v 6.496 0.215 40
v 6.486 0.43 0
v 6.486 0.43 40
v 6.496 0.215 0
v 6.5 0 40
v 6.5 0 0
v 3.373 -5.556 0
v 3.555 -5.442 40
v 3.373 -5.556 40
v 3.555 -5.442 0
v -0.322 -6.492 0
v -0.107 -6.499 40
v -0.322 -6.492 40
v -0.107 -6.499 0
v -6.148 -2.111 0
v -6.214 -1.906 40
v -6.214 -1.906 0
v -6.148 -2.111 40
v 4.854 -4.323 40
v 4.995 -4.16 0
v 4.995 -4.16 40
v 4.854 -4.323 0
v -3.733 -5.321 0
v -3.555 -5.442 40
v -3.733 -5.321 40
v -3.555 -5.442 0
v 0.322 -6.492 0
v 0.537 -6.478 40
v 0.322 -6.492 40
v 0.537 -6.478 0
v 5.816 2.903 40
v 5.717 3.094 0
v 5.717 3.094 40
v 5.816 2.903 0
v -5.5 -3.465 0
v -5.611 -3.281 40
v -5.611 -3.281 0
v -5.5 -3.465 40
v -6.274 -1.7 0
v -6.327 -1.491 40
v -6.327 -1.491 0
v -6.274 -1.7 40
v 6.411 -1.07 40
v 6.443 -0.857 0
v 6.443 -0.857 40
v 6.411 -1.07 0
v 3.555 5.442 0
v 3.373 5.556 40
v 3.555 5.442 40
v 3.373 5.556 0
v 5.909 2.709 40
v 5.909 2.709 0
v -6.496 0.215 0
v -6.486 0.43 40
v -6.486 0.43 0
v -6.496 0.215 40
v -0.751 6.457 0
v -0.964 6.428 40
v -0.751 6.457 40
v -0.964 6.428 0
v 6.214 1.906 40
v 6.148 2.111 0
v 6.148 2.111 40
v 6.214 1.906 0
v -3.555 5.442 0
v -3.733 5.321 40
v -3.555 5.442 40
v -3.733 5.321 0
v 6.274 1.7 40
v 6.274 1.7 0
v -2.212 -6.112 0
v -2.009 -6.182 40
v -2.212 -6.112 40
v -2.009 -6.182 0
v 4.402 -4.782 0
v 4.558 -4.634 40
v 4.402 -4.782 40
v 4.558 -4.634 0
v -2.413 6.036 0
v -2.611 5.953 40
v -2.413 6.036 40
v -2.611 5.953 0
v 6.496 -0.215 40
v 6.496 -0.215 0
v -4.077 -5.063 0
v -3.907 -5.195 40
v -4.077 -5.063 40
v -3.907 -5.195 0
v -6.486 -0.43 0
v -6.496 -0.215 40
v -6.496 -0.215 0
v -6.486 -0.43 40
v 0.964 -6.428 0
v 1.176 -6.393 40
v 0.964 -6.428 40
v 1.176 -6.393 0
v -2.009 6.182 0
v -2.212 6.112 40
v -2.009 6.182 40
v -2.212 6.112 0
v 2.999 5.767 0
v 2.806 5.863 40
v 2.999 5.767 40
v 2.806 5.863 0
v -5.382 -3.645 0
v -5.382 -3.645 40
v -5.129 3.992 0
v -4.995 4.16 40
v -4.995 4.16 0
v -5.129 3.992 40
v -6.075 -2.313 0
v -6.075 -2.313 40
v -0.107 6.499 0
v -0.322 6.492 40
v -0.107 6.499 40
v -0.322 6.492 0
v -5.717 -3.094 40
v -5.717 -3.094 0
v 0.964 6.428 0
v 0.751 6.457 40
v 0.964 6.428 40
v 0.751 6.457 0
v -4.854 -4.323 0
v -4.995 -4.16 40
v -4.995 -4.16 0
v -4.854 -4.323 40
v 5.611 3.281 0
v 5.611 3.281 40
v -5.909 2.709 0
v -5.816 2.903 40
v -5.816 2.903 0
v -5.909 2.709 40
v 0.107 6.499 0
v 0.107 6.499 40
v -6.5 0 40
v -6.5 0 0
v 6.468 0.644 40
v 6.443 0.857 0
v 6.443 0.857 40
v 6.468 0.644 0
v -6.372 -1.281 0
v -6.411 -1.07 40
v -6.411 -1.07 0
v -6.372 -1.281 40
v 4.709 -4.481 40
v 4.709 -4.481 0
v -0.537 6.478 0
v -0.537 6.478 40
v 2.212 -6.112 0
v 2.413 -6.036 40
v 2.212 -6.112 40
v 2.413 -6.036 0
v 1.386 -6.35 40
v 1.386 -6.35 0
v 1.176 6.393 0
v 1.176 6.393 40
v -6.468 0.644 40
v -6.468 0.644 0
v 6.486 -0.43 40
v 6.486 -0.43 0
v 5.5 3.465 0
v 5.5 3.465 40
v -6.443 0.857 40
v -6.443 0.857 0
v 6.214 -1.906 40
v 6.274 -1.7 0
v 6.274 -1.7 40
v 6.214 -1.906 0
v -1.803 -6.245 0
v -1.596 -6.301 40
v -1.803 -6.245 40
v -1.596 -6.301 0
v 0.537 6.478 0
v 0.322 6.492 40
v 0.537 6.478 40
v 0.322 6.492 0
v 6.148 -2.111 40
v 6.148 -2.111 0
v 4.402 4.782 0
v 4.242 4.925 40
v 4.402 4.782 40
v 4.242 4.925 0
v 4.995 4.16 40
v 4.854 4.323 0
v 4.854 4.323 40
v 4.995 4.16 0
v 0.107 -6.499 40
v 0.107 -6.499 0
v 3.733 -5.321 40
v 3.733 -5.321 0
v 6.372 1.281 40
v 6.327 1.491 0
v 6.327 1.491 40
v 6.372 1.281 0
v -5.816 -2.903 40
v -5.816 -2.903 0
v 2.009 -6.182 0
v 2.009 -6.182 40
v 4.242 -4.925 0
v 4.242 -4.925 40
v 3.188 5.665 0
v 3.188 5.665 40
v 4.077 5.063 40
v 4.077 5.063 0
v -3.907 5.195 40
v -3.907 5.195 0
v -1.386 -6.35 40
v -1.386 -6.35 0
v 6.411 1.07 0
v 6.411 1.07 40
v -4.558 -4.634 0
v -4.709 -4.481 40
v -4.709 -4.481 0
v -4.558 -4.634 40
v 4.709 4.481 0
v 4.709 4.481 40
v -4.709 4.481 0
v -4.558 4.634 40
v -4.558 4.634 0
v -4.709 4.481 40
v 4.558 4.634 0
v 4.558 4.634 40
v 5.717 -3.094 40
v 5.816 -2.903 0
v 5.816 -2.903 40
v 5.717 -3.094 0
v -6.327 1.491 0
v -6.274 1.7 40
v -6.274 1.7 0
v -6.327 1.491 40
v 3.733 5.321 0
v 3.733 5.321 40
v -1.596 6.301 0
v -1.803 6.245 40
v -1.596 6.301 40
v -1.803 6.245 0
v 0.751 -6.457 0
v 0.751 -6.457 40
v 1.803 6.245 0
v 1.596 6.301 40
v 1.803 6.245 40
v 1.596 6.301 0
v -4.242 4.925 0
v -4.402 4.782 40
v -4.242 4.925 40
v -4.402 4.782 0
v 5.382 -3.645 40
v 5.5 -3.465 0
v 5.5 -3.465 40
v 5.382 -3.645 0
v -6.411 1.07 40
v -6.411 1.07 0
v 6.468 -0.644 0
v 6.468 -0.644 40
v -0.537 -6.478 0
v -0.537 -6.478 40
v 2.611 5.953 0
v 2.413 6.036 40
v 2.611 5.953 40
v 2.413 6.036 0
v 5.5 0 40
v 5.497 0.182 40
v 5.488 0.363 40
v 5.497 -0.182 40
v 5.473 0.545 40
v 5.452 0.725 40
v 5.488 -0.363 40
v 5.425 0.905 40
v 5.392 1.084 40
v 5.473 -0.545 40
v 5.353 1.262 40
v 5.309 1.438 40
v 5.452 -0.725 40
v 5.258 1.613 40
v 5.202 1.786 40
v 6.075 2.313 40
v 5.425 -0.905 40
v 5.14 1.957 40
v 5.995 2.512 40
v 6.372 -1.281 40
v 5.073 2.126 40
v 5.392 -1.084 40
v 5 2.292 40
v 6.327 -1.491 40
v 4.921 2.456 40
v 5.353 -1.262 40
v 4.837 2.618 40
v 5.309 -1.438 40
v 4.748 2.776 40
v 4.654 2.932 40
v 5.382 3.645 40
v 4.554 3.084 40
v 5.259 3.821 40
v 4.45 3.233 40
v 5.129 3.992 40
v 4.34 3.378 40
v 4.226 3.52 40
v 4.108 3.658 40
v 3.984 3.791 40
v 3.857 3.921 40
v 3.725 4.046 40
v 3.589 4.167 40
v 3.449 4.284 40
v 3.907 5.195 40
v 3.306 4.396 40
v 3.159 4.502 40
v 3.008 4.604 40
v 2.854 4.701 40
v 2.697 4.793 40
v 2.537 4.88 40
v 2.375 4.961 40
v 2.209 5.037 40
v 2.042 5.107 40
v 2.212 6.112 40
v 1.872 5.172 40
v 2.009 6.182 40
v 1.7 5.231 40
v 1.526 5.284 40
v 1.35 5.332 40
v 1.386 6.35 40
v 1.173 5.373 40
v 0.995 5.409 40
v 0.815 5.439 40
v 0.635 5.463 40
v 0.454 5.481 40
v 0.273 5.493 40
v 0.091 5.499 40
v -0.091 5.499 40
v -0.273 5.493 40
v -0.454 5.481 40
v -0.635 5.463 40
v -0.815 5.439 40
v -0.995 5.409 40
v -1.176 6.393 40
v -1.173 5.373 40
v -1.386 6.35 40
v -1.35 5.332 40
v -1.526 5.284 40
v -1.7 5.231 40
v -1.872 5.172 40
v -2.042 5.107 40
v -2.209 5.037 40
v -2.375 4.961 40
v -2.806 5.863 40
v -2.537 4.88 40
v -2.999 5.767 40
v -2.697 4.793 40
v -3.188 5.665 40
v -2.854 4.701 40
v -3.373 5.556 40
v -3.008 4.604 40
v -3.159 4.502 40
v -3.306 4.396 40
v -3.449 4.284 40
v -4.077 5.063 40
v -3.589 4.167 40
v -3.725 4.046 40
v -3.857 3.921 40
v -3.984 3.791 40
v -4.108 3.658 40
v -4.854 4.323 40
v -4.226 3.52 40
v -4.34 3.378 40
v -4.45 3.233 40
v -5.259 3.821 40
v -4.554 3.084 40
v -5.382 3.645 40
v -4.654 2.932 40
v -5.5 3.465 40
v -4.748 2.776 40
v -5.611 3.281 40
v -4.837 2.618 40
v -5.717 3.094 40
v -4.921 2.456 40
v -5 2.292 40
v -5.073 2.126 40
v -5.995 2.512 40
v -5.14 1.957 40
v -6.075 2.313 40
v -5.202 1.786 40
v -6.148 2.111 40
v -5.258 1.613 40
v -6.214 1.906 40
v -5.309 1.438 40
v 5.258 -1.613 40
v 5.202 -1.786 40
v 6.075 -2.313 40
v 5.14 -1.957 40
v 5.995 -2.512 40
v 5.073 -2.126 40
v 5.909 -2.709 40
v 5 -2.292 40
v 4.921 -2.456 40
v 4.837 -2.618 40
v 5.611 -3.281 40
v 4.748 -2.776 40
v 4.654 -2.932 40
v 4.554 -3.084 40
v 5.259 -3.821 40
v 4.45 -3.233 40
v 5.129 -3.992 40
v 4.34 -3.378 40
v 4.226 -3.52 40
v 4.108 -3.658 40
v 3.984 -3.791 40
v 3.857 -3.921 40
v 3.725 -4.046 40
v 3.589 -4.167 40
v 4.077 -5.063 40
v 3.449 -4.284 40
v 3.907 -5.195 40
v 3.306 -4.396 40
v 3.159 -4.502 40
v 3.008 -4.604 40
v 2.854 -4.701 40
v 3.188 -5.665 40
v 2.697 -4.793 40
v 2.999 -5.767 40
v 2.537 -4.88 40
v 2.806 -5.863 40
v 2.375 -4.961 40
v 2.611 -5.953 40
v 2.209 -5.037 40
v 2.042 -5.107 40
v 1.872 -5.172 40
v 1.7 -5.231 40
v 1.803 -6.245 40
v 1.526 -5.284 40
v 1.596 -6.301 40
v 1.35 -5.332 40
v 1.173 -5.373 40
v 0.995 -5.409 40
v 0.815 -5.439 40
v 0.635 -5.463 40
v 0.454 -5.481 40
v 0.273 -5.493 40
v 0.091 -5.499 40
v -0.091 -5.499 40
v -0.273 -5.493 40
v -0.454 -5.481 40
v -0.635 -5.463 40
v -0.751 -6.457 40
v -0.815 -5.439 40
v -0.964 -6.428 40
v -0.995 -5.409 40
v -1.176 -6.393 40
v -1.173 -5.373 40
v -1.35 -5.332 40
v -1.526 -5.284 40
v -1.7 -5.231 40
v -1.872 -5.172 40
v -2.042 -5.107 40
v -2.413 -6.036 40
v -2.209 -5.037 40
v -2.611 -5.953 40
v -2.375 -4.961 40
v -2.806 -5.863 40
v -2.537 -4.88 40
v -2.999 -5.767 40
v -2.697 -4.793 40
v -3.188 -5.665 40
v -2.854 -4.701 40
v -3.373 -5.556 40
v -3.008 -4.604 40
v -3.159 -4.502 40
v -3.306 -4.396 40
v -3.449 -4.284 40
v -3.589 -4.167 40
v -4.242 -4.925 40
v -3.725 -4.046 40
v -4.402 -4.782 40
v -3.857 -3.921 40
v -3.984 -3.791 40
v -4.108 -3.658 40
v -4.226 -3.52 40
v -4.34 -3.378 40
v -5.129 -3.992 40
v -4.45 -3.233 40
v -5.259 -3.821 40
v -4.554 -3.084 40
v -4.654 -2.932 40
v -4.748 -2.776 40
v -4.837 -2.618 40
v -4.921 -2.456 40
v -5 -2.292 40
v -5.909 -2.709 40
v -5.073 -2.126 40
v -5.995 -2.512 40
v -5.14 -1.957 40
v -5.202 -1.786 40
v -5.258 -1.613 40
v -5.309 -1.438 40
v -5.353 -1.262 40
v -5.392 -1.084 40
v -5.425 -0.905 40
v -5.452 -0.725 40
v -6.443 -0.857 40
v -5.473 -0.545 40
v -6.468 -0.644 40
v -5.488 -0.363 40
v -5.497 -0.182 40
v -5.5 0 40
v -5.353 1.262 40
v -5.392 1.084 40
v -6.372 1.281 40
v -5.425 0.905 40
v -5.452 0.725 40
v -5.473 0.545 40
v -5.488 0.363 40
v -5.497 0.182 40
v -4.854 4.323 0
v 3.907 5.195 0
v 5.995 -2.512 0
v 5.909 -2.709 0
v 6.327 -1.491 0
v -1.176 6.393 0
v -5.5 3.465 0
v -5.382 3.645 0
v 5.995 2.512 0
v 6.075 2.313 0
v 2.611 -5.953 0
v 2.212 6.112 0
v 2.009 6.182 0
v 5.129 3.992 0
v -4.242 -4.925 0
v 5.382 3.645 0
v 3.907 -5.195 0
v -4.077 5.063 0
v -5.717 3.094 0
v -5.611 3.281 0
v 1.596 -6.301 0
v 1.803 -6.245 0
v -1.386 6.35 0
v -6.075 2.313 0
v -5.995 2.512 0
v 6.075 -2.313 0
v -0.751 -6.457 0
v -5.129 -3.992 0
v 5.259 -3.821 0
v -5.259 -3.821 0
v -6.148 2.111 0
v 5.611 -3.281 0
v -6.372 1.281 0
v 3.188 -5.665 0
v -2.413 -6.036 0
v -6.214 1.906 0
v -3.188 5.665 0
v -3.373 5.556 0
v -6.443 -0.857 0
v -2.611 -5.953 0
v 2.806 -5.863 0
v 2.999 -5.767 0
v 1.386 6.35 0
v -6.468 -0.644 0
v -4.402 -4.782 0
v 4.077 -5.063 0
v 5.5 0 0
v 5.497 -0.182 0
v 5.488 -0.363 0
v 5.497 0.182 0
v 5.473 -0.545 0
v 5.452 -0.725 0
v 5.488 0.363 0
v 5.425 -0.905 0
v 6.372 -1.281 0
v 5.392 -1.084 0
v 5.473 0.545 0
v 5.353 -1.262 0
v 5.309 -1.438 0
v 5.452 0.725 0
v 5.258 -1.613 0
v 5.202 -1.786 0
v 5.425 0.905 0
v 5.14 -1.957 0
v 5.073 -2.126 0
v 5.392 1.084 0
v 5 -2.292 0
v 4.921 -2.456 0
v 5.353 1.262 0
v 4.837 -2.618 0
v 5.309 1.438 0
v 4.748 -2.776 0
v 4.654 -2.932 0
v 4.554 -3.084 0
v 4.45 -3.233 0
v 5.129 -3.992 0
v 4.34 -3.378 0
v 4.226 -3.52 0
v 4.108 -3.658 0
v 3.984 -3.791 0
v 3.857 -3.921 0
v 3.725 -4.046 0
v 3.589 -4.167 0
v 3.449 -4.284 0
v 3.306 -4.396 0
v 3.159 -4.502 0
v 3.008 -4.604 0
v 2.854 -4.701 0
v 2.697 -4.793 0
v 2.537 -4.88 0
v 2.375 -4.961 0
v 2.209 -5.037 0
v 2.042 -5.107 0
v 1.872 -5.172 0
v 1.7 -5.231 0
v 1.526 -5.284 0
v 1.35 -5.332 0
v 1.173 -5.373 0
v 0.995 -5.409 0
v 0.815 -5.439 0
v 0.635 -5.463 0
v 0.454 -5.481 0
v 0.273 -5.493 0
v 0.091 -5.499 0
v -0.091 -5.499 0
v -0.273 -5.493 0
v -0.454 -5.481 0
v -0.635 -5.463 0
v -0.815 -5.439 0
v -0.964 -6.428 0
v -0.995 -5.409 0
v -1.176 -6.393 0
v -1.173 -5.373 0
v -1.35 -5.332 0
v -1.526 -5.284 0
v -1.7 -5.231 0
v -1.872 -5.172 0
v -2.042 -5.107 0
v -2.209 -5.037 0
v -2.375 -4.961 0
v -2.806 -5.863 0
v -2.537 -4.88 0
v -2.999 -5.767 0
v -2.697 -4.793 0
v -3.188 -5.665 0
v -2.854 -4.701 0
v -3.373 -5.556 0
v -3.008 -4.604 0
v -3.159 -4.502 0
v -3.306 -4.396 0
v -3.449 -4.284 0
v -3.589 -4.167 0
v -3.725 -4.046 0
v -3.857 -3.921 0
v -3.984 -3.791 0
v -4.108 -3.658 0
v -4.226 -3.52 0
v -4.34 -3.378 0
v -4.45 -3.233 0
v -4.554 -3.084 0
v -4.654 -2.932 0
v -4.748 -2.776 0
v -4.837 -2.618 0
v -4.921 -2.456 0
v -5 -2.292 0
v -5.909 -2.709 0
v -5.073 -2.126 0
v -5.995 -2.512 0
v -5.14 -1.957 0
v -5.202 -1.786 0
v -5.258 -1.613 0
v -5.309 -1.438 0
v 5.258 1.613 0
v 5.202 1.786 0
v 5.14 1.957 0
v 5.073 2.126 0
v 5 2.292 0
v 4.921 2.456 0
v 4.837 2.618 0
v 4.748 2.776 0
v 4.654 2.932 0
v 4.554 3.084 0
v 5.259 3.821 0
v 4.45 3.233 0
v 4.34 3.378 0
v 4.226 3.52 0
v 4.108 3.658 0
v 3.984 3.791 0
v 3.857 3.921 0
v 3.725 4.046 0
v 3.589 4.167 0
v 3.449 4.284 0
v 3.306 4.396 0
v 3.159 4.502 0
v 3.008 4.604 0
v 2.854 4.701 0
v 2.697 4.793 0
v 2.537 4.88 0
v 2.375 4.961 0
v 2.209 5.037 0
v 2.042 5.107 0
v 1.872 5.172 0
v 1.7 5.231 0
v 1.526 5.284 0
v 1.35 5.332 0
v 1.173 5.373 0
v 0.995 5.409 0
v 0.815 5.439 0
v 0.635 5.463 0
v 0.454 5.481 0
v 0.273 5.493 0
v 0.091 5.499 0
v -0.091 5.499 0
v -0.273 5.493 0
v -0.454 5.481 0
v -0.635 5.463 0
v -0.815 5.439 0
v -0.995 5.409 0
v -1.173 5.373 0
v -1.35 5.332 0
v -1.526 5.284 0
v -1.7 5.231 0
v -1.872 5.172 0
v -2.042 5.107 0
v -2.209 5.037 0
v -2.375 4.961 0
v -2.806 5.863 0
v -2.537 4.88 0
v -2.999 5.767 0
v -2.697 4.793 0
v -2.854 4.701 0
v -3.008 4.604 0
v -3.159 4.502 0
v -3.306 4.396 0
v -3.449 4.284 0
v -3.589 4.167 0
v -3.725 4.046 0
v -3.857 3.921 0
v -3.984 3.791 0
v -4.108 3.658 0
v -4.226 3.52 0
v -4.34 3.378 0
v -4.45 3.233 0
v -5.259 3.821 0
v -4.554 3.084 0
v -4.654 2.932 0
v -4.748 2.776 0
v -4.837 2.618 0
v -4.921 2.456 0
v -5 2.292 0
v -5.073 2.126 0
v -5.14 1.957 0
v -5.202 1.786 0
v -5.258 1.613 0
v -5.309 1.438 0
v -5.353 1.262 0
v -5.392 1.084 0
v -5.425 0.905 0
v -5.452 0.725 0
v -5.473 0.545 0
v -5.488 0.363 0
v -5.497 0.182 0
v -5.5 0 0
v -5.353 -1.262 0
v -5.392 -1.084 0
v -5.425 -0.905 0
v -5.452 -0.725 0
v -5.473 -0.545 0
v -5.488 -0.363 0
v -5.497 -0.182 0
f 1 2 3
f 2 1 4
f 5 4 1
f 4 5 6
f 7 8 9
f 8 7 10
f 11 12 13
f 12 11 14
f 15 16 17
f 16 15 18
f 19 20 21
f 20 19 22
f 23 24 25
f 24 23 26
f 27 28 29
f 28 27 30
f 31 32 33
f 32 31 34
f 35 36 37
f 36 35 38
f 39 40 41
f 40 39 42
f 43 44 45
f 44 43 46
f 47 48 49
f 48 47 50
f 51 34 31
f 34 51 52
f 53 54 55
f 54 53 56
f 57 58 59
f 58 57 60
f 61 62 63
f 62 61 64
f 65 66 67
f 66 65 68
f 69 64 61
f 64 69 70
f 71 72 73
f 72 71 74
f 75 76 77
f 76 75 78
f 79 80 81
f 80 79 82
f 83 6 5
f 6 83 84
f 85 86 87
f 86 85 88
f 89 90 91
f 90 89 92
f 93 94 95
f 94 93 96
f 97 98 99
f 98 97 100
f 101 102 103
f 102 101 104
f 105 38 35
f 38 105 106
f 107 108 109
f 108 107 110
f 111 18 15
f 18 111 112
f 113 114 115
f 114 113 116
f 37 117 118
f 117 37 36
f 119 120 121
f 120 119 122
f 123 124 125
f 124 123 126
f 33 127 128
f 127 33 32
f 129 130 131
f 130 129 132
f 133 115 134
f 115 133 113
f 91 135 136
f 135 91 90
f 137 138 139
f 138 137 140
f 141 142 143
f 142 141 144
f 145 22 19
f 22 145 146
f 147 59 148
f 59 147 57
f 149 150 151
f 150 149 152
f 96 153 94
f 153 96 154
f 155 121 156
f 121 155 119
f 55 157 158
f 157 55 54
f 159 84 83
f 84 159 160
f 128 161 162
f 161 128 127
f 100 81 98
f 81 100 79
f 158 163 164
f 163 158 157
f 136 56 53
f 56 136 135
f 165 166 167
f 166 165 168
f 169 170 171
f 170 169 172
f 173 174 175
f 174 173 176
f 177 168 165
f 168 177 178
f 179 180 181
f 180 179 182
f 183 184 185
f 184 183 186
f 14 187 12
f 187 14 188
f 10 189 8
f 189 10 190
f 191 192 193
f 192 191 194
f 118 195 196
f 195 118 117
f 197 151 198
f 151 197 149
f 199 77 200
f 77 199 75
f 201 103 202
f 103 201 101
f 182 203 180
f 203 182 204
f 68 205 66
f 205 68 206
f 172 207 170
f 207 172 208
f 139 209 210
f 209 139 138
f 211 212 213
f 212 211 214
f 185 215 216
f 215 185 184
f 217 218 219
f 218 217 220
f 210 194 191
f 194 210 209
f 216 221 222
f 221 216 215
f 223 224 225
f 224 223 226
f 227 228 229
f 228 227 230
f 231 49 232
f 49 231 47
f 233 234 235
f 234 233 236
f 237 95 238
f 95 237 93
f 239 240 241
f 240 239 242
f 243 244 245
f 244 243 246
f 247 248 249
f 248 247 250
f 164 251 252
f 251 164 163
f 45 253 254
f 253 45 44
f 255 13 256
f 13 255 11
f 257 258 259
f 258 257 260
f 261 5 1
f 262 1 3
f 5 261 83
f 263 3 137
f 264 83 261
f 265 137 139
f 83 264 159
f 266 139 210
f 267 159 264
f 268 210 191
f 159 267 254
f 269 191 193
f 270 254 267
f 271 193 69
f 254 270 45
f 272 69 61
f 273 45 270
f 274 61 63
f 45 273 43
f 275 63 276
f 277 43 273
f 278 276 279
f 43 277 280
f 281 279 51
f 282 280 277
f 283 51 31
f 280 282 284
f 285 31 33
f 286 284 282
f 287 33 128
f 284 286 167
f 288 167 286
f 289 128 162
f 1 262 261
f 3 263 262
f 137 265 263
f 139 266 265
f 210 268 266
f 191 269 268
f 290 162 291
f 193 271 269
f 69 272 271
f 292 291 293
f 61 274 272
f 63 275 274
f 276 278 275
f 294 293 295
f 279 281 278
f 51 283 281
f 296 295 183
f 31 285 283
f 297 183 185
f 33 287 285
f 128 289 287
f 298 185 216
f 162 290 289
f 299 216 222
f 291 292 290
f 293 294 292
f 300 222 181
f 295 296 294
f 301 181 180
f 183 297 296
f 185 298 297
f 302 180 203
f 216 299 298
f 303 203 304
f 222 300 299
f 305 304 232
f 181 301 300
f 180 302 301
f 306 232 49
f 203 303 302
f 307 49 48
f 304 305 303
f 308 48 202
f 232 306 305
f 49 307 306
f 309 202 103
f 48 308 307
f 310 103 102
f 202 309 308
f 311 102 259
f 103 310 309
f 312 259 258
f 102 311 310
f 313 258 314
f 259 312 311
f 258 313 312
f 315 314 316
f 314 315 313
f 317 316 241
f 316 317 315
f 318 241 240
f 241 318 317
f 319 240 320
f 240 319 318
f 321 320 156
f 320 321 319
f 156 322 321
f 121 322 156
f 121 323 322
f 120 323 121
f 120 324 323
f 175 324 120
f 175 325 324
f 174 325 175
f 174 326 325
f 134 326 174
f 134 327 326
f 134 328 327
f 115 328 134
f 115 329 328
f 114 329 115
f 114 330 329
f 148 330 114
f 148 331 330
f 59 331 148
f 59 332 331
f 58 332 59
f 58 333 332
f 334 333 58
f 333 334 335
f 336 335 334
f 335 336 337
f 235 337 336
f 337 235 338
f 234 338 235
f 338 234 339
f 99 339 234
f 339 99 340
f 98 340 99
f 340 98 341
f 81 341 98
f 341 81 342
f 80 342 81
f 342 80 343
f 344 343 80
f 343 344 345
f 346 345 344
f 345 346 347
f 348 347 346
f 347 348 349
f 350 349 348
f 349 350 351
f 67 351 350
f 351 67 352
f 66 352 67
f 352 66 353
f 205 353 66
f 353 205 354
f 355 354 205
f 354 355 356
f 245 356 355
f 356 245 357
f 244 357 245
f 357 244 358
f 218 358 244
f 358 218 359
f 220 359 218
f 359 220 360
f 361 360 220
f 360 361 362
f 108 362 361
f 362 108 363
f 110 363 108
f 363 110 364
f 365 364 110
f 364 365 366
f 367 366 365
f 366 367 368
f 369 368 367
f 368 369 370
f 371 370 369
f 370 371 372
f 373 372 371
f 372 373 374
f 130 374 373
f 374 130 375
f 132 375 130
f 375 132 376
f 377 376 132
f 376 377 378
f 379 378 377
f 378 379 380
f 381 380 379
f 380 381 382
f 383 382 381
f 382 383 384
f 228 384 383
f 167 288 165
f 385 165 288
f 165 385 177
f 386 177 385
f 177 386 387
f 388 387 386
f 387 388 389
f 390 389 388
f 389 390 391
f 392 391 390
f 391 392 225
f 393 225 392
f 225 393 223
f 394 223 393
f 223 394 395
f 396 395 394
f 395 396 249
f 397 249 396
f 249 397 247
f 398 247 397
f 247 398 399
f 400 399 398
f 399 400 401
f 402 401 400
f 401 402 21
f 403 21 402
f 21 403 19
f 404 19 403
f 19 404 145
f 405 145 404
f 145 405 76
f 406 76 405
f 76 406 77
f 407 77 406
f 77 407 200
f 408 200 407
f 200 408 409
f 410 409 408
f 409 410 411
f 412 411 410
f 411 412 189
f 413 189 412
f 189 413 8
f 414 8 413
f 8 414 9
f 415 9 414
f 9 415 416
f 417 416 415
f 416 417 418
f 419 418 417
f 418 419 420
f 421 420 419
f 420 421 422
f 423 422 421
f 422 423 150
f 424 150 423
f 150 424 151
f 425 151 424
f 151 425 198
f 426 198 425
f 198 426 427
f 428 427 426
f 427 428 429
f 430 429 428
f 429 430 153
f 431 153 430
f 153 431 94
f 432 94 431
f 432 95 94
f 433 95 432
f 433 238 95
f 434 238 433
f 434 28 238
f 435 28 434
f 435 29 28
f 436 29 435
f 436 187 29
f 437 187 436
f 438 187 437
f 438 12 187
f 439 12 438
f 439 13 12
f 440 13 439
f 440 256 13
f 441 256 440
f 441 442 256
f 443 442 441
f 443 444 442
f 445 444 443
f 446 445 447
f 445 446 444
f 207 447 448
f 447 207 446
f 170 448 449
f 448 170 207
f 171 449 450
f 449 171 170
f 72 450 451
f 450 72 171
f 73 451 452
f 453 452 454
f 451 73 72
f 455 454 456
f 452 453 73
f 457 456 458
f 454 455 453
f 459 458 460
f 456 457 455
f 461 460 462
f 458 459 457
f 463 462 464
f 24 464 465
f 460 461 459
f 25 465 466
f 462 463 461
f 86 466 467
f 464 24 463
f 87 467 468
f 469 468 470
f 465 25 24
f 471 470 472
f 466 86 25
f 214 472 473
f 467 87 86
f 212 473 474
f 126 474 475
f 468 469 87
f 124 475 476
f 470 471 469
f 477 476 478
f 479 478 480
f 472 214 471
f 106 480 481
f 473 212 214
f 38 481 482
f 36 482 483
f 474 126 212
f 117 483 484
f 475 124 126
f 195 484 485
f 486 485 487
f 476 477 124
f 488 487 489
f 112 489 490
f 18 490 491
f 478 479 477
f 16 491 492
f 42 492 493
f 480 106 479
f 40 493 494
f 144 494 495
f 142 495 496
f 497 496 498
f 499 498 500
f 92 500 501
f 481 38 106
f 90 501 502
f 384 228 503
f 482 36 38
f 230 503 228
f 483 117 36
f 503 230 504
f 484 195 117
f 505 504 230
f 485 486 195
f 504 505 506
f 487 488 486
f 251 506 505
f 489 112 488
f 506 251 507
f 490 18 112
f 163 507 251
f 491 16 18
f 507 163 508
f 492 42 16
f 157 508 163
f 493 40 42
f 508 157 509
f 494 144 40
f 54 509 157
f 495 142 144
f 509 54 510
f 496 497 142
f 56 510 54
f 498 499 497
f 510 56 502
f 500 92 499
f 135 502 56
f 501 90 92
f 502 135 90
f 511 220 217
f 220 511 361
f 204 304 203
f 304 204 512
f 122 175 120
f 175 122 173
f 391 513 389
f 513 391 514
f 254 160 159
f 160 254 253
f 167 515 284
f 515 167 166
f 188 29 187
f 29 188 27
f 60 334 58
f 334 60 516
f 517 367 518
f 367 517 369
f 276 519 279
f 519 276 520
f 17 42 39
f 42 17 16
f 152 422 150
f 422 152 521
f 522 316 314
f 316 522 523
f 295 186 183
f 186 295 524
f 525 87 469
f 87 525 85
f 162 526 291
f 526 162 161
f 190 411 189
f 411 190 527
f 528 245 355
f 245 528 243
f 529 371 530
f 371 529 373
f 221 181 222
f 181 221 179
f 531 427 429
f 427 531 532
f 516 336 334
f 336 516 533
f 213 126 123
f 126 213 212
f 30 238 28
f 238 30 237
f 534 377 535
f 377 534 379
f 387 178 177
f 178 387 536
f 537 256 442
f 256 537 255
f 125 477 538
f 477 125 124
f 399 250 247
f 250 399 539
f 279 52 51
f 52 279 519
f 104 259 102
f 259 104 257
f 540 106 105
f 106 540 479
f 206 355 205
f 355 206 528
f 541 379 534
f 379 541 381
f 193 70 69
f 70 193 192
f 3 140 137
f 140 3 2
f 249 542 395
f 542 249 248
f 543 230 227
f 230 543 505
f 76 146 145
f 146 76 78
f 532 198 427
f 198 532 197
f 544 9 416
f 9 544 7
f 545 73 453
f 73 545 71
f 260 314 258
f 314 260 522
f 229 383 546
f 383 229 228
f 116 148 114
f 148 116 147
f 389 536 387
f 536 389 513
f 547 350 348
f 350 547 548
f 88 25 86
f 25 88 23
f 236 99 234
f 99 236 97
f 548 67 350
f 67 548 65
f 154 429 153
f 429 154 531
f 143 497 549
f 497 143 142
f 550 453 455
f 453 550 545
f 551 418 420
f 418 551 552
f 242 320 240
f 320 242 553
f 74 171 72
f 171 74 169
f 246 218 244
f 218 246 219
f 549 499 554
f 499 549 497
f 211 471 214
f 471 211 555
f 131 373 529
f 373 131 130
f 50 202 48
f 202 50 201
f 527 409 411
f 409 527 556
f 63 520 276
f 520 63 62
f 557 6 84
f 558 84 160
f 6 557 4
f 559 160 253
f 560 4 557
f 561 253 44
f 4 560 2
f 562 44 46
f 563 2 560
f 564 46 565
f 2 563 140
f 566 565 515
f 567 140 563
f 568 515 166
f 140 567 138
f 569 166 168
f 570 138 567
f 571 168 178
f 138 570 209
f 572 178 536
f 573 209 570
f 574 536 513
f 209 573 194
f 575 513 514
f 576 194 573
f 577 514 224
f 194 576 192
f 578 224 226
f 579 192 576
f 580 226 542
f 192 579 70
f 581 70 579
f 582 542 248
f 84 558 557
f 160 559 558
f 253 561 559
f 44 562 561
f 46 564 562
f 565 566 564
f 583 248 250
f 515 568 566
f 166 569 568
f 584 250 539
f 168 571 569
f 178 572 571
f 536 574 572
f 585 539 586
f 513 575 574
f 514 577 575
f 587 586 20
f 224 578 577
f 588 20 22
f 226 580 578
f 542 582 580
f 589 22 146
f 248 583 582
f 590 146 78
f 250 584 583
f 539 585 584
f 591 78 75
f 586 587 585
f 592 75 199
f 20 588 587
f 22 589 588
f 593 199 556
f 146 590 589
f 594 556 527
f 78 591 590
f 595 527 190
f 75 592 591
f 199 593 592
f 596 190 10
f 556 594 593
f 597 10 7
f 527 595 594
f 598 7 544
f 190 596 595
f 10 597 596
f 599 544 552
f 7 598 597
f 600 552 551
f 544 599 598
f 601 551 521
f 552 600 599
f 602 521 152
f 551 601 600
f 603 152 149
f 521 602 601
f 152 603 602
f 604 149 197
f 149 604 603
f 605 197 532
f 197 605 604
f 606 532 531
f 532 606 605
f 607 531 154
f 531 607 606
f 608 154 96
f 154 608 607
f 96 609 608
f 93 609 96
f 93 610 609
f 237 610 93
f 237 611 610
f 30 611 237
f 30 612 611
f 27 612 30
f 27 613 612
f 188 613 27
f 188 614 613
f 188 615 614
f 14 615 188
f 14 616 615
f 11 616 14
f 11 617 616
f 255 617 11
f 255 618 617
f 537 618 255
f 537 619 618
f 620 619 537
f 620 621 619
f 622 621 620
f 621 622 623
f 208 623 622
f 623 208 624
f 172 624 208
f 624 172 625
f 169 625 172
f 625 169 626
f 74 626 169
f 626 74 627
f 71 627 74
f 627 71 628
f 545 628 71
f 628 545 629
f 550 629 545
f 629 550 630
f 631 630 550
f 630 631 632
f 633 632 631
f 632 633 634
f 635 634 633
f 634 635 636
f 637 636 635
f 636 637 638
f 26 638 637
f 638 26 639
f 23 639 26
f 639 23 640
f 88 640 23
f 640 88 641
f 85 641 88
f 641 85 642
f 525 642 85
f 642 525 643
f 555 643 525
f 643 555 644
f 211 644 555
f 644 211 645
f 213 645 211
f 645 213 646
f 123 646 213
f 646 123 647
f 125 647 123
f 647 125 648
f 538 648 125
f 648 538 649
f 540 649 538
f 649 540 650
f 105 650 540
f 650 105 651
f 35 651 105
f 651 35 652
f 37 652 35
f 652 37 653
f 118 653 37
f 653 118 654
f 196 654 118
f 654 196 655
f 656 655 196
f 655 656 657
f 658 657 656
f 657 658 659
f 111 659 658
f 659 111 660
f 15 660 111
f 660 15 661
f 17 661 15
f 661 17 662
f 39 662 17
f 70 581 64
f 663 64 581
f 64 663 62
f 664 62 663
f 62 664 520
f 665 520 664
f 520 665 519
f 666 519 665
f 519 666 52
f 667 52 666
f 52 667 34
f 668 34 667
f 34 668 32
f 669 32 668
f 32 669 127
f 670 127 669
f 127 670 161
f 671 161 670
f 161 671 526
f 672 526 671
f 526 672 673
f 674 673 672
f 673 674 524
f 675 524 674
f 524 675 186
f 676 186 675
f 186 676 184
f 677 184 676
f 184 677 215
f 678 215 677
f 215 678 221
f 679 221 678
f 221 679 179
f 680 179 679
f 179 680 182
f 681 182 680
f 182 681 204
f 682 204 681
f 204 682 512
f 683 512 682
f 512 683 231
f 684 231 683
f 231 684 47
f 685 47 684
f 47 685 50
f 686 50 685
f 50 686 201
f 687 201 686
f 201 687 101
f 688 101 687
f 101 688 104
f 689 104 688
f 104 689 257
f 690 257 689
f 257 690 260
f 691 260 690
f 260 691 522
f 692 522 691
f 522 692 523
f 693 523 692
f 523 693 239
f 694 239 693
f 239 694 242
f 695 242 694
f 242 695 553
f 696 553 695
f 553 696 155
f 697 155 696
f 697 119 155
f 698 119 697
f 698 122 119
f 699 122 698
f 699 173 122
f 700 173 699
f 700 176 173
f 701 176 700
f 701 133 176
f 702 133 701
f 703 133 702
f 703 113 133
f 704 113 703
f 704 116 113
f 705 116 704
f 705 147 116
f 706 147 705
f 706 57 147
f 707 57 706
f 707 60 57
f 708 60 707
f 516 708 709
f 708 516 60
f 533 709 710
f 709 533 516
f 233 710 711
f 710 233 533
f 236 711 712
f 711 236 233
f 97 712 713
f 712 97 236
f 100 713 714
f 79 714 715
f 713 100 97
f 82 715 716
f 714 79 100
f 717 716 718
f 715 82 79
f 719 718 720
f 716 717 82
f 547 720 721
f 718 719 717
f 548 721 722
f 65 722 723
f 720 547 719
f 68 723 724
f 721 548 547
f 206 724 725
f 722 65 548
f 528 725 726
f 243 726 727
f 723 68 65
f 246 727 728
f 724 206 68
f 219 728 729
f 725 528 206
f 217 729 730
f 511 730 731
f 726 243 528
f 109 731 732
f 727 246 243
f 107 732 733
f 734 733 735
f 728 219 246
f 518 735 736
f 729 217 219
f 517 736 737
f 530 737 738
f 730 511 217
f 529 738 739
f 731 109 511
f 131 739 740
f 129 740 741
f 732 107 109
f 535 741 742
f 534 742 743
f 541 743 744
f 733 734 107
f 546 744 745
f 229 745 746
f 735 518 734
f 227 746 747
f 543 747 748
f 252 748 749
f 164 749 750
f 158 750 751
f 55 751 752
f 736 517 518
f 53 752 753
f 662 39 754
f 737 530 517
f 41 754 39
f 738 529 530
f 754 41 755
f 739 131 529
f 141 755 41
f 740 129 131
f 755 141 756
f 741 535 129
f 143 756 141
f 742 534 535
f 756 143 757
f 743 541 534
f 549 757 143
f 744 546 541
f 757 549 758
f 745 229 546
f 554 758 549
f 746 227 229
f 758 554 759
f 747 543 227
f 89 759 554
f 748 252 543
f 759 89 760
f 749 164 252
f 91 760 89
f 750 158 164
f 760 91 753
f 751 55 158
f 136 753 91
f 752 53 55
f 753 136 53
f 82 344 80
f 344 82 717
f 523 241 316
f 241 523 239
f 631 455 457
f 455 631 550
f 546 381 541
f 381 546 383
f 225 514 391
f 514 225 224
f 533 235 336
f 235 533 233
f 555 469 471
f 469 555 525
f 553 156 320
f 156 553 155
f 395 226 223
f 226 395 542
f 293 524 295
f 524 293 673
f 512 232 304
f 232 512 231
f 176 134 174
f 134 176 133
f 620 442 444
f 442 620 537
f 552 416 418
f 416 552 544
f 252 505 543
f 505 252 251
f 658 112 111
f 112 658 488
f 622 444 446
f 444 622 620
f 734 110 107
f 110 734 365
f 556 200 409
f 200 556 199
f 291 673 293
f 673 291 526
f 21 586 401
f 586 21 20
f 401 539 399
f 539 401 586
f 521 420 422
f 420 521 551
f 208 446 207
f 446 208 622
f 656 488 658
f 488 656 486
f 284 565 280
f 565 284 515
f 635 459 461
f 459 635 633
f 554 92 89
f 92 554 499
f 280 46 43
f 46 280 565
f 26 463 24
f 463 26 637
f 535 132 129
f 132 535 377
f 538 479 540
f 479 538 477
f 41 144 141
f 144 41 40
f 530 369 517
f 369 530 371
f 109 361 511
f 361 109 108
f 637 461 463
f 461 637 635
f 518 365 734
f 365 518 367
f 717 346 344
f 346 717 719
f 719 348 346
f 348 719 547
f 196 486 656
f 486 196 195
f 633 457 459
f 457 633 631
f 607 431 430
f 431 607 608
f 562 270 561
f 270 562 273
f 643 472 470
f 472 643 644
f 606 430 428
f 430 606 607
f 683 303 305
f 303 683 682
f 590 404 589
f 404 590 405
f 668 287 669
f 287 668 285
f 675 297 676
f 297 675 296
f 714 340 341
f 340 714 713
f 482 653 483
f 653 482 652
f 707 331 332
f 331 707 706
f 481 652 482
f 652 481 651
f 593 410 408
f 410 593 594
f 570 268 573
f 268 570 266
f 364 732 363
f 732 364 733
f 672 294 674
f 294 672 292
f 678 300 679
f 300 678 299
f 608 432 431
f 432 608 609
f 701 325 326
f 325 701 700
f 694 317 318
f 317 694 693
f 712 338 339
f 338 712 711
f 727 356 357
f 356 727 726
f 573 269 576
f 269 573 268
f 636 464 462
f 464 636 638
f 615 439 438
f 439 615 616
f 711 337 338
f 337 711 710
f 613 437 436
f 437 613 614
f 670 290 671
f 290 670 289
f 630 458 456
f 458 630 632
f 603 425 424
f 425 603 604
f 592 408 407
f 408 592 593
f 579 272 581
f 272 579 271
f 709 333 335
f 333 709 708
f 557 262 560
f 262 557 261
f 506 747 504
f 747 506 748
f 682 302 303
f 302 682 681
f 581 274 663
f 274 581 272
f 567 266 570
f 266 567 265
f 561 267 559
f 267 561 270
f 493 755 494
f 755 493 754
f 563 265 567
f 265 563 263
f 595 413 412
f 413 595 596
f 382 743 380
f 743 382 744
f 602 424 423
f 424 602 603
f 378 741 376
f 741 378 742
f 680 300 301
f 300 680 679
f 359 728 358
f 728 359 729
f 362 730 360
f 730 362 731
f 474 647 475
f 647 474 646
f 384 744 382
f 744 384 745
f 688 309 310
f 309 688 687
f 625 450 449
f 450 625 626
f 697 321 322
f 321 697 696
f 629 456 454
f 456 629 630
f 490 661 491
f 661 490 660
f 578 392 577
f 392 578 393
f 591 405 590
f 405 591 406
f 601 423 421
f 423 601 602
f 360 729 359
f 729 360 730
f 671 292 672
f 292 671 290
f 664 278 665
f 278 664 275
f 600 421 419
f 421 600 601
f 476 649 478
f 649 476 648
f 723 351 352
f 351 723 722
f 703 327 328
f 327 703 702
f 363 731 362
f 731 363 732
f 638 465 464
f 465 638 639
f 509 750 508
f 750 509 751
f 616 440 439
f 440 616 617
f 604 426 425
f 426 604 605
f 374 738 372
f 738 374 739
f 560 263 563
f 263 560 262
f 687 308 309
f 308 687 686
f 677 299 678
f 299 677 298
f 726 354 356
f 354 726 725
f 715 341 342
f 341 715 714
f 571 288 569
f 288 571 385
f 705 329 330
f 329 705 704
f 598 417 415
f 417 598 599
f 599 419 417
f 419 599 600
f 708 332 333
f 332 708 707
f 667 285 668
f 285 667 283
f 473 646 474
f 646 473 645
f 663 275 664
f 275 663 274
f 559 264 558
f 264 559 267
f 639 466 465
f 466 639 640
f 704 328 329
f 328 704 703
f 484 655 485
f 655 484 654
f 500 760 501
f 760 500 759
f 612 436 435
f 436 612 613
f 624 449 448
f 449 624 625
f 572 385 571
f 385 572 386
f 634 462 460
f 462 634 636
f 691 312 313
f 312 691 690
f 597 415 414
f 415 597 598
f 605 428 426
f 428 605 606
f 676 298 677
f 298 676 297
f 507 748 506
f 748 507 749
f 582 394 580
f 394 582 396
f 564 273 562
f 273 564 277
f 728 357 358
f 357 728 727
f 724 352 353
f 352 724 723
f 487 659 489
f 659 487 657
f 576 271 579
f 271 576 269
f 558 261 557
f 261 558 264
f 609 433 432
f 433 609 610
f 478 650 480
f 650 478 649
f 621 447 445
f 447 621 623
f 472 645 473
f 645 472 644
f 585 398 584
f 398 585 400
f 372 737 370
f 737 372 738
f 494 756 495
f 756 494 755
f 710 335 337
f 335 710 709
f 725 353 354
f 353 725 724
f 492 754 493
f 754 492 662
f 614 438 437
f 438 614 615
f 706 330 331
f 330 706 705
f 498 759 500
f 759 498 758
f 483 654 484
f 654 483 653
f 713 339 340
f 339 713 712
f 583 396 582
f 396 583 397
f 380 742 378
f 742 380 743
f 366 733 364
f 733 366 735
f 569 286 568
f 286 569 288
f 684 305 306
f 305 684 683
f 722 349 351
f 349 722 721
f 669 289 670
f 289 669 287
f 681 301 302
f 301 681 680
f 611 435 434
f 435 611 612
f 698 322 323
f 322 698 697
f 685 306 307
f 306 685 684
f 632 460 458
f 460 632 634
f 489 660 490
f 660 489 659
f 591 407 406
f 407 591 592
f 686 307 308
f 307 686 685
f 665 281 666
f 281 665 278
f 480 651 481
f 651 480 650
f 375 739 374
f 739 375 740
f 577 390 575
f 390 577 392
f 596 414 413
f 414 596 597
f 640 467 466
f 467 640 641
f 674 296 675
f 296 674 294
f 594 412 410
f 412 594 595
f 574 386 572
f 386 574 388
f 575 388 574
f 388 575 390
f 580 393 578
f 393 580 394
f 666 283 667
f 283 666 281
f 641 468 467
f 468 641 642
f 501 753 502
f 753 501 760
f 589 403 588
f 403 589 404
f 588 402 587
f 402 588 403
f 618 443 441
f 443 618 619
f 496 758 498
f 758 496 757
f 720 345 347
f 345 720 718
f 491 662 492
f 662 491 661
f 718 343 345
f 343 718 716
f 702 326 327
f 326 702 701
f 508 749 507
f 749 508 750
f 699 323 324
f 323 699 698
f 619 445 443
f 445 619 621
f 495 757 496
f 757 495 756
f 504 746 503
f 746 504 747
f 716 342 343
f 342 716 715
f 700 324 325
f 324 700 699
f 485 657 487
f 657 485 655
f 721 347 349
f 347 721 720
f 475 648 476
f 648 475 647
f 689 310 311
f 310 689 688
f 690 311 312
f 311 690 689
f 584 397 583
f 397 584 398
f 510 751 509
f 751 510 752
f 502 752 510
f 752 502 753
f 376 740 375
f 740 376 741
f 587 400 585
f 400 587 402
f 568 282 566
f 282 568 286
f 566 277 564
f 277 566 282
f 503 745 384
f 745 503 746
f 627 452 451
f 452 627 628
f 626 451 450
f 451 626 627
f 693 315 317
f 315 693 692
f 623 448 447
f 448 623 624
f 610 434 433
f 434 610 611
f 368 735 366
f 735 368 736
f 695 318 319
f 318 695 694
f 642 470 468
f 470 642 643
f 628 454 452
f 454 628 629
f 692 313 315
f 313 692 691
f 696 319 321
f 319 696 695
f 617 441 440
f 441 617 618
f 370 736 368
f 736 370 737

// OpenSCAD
$fn = 190;

difference() {
    cylinder(d=13, h=40);
    cylinder(d=11, h=100);
}
